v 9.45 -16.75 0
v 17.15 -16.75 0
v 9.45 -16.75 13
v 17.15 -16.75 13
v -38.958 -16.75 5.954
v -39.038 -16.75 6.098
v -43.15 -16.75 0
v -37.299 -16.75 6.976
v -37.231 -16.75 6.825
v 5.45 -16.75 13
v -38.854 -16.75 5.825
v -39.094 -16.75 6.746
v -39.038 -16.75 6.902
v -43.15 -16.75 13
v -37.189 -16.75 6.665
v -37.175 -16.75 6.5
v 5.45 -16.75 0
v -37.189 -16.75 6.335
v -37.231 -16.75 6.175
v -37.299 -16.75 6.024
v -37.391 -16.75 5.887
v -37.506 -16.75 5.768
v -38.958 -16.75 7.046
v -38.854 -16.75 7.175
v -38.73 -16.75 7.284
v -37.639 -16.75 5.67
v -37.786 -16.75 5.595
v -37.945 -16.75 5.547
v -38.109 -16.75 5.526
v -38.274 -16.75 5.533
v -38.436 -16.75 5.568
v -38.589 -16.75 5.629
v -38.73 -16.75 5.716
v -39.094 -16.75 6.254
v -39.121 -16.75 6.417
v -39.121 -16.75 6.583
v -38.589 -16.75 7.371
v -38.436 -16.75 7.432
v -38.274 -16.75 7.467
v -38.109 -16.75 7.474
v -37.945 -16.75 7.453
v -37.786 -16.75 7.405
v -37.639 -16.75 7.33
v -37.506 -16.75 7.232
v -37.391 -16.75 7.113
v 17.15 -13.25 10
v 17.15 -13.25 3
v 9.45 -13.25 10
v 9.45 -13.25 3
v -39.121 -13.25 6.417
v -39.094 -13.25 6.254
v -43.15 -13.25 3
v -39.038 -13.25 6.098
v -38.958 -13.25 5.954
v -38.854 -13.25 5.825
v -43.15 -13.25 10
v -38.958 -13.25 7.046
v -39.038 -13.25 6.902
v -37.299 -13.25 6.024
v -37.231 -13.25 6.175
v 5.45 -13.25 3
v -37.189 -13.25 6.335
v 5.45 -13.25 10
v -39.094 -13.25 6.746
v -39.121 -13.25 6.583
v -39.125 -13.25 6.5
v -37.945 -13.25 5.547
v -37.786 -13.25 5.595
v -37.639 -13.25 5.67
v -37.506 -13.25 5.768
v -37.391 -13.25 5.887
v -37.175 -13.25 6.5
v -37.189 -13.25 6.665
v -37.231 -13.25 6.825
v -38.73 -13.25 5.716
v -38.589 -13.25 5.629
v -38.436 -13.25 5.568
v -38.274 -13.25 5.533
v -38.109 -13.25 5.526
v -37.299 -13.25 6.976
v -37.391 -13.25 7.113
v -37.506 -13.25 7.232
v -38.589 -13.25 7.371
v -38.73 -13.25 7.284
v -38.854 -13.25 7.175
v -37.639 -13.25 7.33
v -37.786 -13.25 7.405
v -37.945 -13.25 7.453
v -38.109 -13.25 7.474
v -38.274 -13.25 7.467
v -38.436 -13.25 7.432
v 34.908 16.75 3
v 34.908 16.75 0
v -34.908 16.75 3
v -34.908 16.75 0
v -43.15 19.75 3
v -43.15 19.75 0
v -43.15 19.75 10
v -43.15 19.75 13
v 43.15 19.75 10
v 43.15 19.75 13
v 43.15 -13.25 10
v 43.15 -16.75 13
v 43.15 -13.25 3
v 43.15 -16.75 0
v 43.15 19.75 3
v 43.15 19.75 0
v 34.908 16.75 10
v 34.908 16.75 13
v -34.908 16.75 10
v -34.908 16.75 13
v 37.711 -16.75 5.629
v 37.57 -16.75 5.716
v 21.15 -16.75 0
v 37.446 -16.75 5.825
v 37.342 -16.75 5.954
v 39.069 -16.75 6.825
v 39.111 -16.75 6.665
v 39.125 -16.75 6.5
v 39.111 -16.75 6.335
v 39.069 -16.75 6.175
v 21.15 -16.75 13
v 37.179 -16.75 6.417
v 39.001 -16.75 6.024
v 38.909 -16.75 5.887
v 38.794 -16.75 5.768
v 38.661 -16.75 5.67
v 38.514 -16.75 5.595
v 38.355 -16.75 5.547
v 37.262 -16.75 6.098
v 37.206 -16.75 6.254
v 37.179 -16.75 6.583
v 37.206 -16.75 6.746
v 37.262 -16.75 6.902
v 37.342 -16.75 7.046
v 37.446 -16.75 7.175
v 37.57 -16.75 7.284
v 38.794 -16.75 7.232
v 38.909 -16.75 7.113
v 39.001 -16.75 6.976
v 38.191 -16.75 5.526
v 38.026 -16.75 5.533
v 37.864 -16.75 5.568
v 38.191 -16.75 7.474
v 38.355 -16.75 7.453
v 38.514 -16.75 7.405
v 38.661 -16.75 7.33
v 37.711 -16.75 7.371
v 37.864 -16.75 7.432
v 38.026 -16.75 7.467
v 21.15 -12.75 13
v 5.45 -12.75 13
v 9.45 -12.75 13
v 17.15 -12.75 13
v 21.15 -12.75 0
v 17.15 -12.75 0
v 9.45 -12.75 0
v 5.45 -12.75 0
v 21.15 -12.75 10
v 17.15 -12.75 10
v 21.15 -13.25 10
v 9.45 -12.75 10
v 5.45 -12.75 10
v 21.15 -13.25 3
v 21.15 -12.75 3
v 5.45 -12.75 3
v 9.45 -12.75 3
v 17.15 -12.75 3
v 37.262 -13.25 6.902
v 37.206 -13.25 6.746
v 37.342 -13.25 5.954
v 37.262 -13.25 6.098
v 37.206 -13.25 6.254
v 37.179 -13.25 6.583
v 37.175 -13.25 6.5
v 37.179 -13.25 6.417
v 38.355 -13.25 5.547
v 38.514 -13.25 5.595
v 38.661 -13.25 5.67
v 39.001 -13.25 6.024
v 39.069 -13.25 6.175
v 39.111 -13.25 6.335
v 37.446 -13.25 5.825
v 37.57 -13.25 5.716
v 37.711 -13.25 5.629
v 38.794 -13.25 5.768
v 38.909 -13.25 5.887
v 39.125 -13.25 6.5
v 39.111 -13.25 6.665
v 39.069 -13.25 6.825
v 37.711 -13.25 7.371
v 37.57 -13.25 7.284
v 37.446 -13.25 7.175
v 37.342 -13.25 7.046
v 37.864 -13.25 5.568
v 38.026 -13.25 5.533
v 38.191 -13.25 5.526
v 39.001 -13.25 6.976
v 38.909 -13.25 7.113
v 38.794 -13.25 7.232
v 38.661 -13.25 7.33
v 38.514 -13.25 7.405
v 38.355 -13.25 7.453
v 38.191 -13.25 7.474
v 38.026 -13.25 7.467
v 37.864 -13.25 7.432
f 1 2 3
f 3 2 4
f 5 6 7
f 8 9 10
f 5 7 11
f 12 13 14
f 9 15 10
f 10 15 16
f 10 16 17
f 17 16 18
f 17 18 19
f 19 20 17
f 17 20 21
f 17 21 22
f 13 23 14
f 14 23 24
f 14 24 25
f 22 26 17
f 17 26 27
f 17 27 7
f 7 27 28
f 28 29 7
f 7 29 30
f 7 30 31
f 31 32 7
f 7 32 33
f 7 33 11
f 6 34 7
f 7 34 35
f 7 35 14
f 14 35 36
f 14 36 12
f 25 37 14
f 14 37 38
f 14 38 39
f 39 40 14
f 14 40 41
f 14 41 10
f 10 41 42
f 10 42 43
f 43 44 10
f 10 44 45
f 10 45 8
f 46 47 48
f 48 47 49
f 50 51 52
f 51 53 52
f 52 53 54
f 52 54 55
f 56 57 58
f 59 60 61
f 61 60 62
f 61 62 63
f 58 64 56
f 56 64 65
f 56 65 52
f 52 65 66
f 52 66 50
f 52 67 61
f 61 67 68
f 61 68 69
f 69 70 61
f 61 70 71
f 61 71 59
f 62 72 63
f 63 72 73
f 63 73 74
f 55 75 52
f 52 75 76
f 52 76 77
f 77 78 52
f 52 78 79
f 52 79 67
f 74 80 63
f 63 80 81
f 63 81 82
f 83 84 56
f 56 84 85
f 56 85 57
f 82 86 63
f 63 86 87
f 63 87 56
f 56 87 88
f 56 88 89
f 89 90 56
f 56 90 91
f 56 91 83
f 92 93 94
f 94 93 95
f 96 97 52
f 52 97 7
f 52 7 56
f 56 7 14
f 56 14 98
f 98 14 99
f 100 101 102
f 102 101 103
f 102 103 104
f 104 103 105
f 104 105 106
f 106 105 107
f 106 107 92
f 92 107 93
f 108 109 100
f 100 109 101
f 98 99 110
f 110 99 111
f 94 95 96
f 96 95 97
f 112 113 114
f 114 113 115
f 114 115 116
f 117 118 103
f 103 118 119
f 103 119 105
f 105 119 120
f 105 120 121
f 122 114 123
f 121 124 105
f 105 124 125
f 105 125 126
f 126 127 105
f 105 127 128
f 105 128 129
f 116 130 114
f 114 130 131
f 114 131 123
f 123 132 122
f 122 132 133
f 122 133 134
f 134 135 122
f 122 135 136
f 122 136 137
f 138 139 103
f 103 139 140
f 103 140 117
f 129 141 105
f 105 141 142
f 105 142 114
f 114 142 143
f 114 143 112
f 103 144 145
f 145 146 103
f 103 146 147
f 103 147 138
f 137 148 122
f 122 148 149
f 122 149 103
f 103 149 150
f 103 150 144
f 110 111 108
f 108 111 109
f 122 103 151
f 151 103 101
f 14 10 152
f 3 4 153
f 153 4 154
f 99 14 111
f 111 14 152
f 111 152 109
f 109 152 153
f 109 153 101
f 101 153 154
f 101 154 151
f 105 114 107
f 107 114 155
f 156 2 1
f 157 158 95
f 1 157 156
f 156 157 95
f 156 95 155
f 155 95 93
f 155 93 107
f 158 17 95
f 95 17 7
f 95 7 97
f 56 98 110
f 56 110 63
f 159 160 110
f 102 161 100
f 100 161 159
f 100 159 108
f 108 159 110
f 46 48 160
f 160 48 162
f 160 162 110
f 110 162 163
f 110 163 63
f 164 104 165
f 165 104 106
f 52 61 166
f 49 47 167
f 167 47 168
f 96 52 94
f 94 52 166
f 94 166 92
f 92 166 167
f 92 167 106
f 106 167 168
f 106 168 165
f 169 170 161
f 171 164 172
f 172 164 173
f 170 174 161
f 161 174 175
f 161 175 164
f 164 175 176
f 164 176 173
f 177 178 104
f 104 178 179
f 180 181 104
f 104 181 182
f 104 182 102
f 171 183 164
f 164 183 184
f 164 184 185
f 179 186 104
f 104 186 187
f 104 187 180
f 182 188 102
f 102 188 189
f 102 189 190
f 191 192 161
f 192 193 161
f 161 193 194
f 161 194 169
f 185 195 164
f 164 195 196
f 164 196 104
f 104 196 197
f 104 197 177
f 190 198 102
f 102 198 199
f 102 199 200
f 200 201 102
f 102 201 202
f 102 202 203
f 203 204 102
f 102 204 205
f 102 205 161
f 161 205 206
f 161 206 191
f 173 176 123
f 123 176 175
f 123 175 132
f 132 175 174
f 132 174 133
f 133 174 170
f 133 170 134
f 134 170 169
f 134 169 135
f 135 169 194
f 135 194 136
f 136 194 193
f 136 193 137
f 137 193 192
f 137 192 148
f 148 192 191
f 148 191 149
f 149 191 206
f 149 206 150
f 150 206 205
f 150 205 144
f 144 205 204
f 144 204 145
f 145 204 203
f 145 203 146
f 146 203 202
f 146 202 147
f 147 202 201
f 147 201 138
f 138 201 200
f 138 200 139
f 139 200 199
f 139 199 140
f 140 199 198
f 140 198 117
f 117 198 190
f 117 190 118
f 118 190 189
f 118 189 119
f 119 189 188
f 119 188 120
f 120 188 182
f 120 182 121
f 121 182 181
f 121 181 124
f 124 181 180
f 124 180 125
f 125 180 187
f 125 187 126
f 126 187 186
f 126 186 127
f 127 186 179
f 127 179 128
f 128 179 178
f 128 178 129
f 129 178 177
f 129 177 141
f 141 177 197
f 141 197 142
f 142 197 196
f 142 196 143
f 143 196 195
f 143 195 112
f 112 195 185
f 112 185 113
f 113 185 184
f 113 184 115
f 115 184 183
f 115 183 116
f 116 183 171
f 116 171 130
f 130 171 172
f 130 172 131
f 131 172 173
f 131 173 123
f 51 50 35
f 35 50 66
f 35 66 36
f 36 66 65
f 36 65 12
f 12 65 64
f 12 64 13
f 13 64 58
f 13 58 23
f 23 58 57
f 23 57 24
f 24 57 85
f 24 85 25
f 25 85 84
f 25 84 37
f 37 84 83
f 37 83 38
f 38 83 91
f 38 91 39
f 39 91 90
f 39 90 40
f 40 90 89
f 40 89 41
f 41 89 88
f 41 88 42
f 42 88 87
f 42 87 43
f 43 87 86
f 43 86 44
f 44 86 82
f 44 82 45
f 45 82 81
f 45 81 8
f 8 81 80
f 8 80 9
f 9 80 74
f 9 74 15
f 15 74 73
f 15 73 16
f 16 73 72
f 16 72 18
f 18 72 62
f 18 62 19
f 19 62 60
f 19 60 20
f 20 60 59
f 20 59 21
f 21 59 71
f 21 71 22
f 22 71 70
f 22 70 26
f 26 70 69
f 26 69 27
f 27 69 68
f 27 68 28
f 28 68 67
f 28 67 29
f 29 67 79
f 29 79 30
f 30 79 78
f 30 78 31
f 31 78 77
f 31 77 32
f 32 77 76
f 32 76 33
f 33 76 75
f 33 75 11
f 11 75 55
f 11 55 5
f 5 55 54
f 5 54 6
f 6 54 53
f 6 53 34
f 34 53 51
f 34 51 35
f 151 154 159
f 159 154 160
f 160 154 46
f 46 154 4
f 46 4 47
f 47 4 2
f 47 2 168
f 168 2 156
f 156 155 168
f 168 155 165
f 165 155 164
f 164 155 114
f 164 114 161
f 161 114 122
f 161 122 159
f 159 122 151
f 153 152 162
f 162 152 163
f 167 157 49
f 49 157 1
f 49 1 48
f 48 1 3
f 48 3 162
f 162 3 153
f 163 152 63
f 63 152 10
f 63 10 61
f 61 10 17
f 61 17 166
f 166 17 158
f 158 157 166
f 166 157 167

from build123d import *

# Parameters (mm, degrees)
SKETCH_1_W          = 86.3
SKETCH_1_H          = 33.5
EXTRUDE_1_DEPTH     = 13
EXTRUDE_2_DEPTH     = 13
SKETCH_7_W          = 86.3
SKETCH_7_H          = 7
CUT_EXTRUDE_3_DEPTH = 3
SKETCH_8_W          = 86.3
SKETCH_8_H          = 7
CUT_EXTRUDE_4_DEPTH = 30
SKETCH_9_R          = 0.975
CUT_EXTRUDE_5_DEPTH = 58.992865941
SKETCH_10_W         = 4
SKETCH_10_H         = 4
CUT_EXTRUDE_6_DEPTH = 50.203505973


with BuildPart() as part:
    # ｽｹｯﾁ1 → ﾎﾞｽ - 押し出し1 (new body)
    with BuildSketch(Plane.XY):
        Rectangle(SKETCH_1_W, SKETCH_1_H)
    extrude(amount=EXTRUDE_1_DEPTH)

    # ｽｹｯﾁ3 → ﾎﾞｽ - 押し出し2 (add)
    with BuildSketch(Plane(origin=(0, 0, 0), x_dir=(-1, 0, 0), z_dir=(0, 0, -1))):
        Polygon((-43.15, 16.75), (-43.15, 19.75), (-34.907567742, 16.75), align=None)
        Polygon((43.15, 16.75), (43.15, 19.75), (34.907567742, 16.75), align=None)
    extrude(amount=-EXTRUDE_2_DEPTH)

    # ｽｹｯﾁ7 → ｶｯﾄ - 押し出し3 (cut)
    with BuildSketch(Plane(origin=(0, 16.75, 0), x_dir=(1, 0, 0), z_dir=(0, 1, 0))):
        with Locations((0, -6.5)):
            Rectangle(SKETCH_7_W, SKETCH_7_H)
    extrude(amount=CUT_EXTRUDE_3_DEPTH, mode=Mode.SUBTRACT)

    # ｽｹｯﾁ8 → ｶｯﾄ - 押し出し4 (cut)
    with BuildSketch(Plane(origin=(0, 16.75, 0), x_dir=(1, 0, 0), z_dir=(0, 1, 0))):
        with Locations((0, -6.5)):
            Rectangle(SKETCH_8_W, SKETCH_8_H)
    extrude(amount=-CUT_EXTRUDE_4_DEPTH, mode=Mode.SUBTRACT)

    # ｽｹｯﾁ9 → ｶｯﾄ - 押し出し5 (cut, through all)
    with BuildSketch(Plane.XZ.offset(16.75)):
        with Locations((-38.15, 6.5)):
            Circle(SKETCH_9_R)
        with Locations((38.15, 6.5)):
            Circle(SKETCH_9_R)
    extrude(amount=-CUT_EXTRUDE_5_DEPTH, mode=Mode.SUBTRACT)

    # ｽｹｯﾁ10 → ｶｯﾄ - 押し出し6 (cut, through all)
    with BuildSketch(Plane.XY.offset(13)):
        with Locations((7.45, -14.75)):
            Rectangle(SKETCH_10_W, SKETCH_10_H)
        with Locations((19.15, -14.75)):
            Rectangle(SKETCH_10_W, SKETCH_10_H)
    extrude(amount=-CUT_EXTRUDE_6_DEPTH, mode=Mode.SUBTRACT)


solid = part.part
